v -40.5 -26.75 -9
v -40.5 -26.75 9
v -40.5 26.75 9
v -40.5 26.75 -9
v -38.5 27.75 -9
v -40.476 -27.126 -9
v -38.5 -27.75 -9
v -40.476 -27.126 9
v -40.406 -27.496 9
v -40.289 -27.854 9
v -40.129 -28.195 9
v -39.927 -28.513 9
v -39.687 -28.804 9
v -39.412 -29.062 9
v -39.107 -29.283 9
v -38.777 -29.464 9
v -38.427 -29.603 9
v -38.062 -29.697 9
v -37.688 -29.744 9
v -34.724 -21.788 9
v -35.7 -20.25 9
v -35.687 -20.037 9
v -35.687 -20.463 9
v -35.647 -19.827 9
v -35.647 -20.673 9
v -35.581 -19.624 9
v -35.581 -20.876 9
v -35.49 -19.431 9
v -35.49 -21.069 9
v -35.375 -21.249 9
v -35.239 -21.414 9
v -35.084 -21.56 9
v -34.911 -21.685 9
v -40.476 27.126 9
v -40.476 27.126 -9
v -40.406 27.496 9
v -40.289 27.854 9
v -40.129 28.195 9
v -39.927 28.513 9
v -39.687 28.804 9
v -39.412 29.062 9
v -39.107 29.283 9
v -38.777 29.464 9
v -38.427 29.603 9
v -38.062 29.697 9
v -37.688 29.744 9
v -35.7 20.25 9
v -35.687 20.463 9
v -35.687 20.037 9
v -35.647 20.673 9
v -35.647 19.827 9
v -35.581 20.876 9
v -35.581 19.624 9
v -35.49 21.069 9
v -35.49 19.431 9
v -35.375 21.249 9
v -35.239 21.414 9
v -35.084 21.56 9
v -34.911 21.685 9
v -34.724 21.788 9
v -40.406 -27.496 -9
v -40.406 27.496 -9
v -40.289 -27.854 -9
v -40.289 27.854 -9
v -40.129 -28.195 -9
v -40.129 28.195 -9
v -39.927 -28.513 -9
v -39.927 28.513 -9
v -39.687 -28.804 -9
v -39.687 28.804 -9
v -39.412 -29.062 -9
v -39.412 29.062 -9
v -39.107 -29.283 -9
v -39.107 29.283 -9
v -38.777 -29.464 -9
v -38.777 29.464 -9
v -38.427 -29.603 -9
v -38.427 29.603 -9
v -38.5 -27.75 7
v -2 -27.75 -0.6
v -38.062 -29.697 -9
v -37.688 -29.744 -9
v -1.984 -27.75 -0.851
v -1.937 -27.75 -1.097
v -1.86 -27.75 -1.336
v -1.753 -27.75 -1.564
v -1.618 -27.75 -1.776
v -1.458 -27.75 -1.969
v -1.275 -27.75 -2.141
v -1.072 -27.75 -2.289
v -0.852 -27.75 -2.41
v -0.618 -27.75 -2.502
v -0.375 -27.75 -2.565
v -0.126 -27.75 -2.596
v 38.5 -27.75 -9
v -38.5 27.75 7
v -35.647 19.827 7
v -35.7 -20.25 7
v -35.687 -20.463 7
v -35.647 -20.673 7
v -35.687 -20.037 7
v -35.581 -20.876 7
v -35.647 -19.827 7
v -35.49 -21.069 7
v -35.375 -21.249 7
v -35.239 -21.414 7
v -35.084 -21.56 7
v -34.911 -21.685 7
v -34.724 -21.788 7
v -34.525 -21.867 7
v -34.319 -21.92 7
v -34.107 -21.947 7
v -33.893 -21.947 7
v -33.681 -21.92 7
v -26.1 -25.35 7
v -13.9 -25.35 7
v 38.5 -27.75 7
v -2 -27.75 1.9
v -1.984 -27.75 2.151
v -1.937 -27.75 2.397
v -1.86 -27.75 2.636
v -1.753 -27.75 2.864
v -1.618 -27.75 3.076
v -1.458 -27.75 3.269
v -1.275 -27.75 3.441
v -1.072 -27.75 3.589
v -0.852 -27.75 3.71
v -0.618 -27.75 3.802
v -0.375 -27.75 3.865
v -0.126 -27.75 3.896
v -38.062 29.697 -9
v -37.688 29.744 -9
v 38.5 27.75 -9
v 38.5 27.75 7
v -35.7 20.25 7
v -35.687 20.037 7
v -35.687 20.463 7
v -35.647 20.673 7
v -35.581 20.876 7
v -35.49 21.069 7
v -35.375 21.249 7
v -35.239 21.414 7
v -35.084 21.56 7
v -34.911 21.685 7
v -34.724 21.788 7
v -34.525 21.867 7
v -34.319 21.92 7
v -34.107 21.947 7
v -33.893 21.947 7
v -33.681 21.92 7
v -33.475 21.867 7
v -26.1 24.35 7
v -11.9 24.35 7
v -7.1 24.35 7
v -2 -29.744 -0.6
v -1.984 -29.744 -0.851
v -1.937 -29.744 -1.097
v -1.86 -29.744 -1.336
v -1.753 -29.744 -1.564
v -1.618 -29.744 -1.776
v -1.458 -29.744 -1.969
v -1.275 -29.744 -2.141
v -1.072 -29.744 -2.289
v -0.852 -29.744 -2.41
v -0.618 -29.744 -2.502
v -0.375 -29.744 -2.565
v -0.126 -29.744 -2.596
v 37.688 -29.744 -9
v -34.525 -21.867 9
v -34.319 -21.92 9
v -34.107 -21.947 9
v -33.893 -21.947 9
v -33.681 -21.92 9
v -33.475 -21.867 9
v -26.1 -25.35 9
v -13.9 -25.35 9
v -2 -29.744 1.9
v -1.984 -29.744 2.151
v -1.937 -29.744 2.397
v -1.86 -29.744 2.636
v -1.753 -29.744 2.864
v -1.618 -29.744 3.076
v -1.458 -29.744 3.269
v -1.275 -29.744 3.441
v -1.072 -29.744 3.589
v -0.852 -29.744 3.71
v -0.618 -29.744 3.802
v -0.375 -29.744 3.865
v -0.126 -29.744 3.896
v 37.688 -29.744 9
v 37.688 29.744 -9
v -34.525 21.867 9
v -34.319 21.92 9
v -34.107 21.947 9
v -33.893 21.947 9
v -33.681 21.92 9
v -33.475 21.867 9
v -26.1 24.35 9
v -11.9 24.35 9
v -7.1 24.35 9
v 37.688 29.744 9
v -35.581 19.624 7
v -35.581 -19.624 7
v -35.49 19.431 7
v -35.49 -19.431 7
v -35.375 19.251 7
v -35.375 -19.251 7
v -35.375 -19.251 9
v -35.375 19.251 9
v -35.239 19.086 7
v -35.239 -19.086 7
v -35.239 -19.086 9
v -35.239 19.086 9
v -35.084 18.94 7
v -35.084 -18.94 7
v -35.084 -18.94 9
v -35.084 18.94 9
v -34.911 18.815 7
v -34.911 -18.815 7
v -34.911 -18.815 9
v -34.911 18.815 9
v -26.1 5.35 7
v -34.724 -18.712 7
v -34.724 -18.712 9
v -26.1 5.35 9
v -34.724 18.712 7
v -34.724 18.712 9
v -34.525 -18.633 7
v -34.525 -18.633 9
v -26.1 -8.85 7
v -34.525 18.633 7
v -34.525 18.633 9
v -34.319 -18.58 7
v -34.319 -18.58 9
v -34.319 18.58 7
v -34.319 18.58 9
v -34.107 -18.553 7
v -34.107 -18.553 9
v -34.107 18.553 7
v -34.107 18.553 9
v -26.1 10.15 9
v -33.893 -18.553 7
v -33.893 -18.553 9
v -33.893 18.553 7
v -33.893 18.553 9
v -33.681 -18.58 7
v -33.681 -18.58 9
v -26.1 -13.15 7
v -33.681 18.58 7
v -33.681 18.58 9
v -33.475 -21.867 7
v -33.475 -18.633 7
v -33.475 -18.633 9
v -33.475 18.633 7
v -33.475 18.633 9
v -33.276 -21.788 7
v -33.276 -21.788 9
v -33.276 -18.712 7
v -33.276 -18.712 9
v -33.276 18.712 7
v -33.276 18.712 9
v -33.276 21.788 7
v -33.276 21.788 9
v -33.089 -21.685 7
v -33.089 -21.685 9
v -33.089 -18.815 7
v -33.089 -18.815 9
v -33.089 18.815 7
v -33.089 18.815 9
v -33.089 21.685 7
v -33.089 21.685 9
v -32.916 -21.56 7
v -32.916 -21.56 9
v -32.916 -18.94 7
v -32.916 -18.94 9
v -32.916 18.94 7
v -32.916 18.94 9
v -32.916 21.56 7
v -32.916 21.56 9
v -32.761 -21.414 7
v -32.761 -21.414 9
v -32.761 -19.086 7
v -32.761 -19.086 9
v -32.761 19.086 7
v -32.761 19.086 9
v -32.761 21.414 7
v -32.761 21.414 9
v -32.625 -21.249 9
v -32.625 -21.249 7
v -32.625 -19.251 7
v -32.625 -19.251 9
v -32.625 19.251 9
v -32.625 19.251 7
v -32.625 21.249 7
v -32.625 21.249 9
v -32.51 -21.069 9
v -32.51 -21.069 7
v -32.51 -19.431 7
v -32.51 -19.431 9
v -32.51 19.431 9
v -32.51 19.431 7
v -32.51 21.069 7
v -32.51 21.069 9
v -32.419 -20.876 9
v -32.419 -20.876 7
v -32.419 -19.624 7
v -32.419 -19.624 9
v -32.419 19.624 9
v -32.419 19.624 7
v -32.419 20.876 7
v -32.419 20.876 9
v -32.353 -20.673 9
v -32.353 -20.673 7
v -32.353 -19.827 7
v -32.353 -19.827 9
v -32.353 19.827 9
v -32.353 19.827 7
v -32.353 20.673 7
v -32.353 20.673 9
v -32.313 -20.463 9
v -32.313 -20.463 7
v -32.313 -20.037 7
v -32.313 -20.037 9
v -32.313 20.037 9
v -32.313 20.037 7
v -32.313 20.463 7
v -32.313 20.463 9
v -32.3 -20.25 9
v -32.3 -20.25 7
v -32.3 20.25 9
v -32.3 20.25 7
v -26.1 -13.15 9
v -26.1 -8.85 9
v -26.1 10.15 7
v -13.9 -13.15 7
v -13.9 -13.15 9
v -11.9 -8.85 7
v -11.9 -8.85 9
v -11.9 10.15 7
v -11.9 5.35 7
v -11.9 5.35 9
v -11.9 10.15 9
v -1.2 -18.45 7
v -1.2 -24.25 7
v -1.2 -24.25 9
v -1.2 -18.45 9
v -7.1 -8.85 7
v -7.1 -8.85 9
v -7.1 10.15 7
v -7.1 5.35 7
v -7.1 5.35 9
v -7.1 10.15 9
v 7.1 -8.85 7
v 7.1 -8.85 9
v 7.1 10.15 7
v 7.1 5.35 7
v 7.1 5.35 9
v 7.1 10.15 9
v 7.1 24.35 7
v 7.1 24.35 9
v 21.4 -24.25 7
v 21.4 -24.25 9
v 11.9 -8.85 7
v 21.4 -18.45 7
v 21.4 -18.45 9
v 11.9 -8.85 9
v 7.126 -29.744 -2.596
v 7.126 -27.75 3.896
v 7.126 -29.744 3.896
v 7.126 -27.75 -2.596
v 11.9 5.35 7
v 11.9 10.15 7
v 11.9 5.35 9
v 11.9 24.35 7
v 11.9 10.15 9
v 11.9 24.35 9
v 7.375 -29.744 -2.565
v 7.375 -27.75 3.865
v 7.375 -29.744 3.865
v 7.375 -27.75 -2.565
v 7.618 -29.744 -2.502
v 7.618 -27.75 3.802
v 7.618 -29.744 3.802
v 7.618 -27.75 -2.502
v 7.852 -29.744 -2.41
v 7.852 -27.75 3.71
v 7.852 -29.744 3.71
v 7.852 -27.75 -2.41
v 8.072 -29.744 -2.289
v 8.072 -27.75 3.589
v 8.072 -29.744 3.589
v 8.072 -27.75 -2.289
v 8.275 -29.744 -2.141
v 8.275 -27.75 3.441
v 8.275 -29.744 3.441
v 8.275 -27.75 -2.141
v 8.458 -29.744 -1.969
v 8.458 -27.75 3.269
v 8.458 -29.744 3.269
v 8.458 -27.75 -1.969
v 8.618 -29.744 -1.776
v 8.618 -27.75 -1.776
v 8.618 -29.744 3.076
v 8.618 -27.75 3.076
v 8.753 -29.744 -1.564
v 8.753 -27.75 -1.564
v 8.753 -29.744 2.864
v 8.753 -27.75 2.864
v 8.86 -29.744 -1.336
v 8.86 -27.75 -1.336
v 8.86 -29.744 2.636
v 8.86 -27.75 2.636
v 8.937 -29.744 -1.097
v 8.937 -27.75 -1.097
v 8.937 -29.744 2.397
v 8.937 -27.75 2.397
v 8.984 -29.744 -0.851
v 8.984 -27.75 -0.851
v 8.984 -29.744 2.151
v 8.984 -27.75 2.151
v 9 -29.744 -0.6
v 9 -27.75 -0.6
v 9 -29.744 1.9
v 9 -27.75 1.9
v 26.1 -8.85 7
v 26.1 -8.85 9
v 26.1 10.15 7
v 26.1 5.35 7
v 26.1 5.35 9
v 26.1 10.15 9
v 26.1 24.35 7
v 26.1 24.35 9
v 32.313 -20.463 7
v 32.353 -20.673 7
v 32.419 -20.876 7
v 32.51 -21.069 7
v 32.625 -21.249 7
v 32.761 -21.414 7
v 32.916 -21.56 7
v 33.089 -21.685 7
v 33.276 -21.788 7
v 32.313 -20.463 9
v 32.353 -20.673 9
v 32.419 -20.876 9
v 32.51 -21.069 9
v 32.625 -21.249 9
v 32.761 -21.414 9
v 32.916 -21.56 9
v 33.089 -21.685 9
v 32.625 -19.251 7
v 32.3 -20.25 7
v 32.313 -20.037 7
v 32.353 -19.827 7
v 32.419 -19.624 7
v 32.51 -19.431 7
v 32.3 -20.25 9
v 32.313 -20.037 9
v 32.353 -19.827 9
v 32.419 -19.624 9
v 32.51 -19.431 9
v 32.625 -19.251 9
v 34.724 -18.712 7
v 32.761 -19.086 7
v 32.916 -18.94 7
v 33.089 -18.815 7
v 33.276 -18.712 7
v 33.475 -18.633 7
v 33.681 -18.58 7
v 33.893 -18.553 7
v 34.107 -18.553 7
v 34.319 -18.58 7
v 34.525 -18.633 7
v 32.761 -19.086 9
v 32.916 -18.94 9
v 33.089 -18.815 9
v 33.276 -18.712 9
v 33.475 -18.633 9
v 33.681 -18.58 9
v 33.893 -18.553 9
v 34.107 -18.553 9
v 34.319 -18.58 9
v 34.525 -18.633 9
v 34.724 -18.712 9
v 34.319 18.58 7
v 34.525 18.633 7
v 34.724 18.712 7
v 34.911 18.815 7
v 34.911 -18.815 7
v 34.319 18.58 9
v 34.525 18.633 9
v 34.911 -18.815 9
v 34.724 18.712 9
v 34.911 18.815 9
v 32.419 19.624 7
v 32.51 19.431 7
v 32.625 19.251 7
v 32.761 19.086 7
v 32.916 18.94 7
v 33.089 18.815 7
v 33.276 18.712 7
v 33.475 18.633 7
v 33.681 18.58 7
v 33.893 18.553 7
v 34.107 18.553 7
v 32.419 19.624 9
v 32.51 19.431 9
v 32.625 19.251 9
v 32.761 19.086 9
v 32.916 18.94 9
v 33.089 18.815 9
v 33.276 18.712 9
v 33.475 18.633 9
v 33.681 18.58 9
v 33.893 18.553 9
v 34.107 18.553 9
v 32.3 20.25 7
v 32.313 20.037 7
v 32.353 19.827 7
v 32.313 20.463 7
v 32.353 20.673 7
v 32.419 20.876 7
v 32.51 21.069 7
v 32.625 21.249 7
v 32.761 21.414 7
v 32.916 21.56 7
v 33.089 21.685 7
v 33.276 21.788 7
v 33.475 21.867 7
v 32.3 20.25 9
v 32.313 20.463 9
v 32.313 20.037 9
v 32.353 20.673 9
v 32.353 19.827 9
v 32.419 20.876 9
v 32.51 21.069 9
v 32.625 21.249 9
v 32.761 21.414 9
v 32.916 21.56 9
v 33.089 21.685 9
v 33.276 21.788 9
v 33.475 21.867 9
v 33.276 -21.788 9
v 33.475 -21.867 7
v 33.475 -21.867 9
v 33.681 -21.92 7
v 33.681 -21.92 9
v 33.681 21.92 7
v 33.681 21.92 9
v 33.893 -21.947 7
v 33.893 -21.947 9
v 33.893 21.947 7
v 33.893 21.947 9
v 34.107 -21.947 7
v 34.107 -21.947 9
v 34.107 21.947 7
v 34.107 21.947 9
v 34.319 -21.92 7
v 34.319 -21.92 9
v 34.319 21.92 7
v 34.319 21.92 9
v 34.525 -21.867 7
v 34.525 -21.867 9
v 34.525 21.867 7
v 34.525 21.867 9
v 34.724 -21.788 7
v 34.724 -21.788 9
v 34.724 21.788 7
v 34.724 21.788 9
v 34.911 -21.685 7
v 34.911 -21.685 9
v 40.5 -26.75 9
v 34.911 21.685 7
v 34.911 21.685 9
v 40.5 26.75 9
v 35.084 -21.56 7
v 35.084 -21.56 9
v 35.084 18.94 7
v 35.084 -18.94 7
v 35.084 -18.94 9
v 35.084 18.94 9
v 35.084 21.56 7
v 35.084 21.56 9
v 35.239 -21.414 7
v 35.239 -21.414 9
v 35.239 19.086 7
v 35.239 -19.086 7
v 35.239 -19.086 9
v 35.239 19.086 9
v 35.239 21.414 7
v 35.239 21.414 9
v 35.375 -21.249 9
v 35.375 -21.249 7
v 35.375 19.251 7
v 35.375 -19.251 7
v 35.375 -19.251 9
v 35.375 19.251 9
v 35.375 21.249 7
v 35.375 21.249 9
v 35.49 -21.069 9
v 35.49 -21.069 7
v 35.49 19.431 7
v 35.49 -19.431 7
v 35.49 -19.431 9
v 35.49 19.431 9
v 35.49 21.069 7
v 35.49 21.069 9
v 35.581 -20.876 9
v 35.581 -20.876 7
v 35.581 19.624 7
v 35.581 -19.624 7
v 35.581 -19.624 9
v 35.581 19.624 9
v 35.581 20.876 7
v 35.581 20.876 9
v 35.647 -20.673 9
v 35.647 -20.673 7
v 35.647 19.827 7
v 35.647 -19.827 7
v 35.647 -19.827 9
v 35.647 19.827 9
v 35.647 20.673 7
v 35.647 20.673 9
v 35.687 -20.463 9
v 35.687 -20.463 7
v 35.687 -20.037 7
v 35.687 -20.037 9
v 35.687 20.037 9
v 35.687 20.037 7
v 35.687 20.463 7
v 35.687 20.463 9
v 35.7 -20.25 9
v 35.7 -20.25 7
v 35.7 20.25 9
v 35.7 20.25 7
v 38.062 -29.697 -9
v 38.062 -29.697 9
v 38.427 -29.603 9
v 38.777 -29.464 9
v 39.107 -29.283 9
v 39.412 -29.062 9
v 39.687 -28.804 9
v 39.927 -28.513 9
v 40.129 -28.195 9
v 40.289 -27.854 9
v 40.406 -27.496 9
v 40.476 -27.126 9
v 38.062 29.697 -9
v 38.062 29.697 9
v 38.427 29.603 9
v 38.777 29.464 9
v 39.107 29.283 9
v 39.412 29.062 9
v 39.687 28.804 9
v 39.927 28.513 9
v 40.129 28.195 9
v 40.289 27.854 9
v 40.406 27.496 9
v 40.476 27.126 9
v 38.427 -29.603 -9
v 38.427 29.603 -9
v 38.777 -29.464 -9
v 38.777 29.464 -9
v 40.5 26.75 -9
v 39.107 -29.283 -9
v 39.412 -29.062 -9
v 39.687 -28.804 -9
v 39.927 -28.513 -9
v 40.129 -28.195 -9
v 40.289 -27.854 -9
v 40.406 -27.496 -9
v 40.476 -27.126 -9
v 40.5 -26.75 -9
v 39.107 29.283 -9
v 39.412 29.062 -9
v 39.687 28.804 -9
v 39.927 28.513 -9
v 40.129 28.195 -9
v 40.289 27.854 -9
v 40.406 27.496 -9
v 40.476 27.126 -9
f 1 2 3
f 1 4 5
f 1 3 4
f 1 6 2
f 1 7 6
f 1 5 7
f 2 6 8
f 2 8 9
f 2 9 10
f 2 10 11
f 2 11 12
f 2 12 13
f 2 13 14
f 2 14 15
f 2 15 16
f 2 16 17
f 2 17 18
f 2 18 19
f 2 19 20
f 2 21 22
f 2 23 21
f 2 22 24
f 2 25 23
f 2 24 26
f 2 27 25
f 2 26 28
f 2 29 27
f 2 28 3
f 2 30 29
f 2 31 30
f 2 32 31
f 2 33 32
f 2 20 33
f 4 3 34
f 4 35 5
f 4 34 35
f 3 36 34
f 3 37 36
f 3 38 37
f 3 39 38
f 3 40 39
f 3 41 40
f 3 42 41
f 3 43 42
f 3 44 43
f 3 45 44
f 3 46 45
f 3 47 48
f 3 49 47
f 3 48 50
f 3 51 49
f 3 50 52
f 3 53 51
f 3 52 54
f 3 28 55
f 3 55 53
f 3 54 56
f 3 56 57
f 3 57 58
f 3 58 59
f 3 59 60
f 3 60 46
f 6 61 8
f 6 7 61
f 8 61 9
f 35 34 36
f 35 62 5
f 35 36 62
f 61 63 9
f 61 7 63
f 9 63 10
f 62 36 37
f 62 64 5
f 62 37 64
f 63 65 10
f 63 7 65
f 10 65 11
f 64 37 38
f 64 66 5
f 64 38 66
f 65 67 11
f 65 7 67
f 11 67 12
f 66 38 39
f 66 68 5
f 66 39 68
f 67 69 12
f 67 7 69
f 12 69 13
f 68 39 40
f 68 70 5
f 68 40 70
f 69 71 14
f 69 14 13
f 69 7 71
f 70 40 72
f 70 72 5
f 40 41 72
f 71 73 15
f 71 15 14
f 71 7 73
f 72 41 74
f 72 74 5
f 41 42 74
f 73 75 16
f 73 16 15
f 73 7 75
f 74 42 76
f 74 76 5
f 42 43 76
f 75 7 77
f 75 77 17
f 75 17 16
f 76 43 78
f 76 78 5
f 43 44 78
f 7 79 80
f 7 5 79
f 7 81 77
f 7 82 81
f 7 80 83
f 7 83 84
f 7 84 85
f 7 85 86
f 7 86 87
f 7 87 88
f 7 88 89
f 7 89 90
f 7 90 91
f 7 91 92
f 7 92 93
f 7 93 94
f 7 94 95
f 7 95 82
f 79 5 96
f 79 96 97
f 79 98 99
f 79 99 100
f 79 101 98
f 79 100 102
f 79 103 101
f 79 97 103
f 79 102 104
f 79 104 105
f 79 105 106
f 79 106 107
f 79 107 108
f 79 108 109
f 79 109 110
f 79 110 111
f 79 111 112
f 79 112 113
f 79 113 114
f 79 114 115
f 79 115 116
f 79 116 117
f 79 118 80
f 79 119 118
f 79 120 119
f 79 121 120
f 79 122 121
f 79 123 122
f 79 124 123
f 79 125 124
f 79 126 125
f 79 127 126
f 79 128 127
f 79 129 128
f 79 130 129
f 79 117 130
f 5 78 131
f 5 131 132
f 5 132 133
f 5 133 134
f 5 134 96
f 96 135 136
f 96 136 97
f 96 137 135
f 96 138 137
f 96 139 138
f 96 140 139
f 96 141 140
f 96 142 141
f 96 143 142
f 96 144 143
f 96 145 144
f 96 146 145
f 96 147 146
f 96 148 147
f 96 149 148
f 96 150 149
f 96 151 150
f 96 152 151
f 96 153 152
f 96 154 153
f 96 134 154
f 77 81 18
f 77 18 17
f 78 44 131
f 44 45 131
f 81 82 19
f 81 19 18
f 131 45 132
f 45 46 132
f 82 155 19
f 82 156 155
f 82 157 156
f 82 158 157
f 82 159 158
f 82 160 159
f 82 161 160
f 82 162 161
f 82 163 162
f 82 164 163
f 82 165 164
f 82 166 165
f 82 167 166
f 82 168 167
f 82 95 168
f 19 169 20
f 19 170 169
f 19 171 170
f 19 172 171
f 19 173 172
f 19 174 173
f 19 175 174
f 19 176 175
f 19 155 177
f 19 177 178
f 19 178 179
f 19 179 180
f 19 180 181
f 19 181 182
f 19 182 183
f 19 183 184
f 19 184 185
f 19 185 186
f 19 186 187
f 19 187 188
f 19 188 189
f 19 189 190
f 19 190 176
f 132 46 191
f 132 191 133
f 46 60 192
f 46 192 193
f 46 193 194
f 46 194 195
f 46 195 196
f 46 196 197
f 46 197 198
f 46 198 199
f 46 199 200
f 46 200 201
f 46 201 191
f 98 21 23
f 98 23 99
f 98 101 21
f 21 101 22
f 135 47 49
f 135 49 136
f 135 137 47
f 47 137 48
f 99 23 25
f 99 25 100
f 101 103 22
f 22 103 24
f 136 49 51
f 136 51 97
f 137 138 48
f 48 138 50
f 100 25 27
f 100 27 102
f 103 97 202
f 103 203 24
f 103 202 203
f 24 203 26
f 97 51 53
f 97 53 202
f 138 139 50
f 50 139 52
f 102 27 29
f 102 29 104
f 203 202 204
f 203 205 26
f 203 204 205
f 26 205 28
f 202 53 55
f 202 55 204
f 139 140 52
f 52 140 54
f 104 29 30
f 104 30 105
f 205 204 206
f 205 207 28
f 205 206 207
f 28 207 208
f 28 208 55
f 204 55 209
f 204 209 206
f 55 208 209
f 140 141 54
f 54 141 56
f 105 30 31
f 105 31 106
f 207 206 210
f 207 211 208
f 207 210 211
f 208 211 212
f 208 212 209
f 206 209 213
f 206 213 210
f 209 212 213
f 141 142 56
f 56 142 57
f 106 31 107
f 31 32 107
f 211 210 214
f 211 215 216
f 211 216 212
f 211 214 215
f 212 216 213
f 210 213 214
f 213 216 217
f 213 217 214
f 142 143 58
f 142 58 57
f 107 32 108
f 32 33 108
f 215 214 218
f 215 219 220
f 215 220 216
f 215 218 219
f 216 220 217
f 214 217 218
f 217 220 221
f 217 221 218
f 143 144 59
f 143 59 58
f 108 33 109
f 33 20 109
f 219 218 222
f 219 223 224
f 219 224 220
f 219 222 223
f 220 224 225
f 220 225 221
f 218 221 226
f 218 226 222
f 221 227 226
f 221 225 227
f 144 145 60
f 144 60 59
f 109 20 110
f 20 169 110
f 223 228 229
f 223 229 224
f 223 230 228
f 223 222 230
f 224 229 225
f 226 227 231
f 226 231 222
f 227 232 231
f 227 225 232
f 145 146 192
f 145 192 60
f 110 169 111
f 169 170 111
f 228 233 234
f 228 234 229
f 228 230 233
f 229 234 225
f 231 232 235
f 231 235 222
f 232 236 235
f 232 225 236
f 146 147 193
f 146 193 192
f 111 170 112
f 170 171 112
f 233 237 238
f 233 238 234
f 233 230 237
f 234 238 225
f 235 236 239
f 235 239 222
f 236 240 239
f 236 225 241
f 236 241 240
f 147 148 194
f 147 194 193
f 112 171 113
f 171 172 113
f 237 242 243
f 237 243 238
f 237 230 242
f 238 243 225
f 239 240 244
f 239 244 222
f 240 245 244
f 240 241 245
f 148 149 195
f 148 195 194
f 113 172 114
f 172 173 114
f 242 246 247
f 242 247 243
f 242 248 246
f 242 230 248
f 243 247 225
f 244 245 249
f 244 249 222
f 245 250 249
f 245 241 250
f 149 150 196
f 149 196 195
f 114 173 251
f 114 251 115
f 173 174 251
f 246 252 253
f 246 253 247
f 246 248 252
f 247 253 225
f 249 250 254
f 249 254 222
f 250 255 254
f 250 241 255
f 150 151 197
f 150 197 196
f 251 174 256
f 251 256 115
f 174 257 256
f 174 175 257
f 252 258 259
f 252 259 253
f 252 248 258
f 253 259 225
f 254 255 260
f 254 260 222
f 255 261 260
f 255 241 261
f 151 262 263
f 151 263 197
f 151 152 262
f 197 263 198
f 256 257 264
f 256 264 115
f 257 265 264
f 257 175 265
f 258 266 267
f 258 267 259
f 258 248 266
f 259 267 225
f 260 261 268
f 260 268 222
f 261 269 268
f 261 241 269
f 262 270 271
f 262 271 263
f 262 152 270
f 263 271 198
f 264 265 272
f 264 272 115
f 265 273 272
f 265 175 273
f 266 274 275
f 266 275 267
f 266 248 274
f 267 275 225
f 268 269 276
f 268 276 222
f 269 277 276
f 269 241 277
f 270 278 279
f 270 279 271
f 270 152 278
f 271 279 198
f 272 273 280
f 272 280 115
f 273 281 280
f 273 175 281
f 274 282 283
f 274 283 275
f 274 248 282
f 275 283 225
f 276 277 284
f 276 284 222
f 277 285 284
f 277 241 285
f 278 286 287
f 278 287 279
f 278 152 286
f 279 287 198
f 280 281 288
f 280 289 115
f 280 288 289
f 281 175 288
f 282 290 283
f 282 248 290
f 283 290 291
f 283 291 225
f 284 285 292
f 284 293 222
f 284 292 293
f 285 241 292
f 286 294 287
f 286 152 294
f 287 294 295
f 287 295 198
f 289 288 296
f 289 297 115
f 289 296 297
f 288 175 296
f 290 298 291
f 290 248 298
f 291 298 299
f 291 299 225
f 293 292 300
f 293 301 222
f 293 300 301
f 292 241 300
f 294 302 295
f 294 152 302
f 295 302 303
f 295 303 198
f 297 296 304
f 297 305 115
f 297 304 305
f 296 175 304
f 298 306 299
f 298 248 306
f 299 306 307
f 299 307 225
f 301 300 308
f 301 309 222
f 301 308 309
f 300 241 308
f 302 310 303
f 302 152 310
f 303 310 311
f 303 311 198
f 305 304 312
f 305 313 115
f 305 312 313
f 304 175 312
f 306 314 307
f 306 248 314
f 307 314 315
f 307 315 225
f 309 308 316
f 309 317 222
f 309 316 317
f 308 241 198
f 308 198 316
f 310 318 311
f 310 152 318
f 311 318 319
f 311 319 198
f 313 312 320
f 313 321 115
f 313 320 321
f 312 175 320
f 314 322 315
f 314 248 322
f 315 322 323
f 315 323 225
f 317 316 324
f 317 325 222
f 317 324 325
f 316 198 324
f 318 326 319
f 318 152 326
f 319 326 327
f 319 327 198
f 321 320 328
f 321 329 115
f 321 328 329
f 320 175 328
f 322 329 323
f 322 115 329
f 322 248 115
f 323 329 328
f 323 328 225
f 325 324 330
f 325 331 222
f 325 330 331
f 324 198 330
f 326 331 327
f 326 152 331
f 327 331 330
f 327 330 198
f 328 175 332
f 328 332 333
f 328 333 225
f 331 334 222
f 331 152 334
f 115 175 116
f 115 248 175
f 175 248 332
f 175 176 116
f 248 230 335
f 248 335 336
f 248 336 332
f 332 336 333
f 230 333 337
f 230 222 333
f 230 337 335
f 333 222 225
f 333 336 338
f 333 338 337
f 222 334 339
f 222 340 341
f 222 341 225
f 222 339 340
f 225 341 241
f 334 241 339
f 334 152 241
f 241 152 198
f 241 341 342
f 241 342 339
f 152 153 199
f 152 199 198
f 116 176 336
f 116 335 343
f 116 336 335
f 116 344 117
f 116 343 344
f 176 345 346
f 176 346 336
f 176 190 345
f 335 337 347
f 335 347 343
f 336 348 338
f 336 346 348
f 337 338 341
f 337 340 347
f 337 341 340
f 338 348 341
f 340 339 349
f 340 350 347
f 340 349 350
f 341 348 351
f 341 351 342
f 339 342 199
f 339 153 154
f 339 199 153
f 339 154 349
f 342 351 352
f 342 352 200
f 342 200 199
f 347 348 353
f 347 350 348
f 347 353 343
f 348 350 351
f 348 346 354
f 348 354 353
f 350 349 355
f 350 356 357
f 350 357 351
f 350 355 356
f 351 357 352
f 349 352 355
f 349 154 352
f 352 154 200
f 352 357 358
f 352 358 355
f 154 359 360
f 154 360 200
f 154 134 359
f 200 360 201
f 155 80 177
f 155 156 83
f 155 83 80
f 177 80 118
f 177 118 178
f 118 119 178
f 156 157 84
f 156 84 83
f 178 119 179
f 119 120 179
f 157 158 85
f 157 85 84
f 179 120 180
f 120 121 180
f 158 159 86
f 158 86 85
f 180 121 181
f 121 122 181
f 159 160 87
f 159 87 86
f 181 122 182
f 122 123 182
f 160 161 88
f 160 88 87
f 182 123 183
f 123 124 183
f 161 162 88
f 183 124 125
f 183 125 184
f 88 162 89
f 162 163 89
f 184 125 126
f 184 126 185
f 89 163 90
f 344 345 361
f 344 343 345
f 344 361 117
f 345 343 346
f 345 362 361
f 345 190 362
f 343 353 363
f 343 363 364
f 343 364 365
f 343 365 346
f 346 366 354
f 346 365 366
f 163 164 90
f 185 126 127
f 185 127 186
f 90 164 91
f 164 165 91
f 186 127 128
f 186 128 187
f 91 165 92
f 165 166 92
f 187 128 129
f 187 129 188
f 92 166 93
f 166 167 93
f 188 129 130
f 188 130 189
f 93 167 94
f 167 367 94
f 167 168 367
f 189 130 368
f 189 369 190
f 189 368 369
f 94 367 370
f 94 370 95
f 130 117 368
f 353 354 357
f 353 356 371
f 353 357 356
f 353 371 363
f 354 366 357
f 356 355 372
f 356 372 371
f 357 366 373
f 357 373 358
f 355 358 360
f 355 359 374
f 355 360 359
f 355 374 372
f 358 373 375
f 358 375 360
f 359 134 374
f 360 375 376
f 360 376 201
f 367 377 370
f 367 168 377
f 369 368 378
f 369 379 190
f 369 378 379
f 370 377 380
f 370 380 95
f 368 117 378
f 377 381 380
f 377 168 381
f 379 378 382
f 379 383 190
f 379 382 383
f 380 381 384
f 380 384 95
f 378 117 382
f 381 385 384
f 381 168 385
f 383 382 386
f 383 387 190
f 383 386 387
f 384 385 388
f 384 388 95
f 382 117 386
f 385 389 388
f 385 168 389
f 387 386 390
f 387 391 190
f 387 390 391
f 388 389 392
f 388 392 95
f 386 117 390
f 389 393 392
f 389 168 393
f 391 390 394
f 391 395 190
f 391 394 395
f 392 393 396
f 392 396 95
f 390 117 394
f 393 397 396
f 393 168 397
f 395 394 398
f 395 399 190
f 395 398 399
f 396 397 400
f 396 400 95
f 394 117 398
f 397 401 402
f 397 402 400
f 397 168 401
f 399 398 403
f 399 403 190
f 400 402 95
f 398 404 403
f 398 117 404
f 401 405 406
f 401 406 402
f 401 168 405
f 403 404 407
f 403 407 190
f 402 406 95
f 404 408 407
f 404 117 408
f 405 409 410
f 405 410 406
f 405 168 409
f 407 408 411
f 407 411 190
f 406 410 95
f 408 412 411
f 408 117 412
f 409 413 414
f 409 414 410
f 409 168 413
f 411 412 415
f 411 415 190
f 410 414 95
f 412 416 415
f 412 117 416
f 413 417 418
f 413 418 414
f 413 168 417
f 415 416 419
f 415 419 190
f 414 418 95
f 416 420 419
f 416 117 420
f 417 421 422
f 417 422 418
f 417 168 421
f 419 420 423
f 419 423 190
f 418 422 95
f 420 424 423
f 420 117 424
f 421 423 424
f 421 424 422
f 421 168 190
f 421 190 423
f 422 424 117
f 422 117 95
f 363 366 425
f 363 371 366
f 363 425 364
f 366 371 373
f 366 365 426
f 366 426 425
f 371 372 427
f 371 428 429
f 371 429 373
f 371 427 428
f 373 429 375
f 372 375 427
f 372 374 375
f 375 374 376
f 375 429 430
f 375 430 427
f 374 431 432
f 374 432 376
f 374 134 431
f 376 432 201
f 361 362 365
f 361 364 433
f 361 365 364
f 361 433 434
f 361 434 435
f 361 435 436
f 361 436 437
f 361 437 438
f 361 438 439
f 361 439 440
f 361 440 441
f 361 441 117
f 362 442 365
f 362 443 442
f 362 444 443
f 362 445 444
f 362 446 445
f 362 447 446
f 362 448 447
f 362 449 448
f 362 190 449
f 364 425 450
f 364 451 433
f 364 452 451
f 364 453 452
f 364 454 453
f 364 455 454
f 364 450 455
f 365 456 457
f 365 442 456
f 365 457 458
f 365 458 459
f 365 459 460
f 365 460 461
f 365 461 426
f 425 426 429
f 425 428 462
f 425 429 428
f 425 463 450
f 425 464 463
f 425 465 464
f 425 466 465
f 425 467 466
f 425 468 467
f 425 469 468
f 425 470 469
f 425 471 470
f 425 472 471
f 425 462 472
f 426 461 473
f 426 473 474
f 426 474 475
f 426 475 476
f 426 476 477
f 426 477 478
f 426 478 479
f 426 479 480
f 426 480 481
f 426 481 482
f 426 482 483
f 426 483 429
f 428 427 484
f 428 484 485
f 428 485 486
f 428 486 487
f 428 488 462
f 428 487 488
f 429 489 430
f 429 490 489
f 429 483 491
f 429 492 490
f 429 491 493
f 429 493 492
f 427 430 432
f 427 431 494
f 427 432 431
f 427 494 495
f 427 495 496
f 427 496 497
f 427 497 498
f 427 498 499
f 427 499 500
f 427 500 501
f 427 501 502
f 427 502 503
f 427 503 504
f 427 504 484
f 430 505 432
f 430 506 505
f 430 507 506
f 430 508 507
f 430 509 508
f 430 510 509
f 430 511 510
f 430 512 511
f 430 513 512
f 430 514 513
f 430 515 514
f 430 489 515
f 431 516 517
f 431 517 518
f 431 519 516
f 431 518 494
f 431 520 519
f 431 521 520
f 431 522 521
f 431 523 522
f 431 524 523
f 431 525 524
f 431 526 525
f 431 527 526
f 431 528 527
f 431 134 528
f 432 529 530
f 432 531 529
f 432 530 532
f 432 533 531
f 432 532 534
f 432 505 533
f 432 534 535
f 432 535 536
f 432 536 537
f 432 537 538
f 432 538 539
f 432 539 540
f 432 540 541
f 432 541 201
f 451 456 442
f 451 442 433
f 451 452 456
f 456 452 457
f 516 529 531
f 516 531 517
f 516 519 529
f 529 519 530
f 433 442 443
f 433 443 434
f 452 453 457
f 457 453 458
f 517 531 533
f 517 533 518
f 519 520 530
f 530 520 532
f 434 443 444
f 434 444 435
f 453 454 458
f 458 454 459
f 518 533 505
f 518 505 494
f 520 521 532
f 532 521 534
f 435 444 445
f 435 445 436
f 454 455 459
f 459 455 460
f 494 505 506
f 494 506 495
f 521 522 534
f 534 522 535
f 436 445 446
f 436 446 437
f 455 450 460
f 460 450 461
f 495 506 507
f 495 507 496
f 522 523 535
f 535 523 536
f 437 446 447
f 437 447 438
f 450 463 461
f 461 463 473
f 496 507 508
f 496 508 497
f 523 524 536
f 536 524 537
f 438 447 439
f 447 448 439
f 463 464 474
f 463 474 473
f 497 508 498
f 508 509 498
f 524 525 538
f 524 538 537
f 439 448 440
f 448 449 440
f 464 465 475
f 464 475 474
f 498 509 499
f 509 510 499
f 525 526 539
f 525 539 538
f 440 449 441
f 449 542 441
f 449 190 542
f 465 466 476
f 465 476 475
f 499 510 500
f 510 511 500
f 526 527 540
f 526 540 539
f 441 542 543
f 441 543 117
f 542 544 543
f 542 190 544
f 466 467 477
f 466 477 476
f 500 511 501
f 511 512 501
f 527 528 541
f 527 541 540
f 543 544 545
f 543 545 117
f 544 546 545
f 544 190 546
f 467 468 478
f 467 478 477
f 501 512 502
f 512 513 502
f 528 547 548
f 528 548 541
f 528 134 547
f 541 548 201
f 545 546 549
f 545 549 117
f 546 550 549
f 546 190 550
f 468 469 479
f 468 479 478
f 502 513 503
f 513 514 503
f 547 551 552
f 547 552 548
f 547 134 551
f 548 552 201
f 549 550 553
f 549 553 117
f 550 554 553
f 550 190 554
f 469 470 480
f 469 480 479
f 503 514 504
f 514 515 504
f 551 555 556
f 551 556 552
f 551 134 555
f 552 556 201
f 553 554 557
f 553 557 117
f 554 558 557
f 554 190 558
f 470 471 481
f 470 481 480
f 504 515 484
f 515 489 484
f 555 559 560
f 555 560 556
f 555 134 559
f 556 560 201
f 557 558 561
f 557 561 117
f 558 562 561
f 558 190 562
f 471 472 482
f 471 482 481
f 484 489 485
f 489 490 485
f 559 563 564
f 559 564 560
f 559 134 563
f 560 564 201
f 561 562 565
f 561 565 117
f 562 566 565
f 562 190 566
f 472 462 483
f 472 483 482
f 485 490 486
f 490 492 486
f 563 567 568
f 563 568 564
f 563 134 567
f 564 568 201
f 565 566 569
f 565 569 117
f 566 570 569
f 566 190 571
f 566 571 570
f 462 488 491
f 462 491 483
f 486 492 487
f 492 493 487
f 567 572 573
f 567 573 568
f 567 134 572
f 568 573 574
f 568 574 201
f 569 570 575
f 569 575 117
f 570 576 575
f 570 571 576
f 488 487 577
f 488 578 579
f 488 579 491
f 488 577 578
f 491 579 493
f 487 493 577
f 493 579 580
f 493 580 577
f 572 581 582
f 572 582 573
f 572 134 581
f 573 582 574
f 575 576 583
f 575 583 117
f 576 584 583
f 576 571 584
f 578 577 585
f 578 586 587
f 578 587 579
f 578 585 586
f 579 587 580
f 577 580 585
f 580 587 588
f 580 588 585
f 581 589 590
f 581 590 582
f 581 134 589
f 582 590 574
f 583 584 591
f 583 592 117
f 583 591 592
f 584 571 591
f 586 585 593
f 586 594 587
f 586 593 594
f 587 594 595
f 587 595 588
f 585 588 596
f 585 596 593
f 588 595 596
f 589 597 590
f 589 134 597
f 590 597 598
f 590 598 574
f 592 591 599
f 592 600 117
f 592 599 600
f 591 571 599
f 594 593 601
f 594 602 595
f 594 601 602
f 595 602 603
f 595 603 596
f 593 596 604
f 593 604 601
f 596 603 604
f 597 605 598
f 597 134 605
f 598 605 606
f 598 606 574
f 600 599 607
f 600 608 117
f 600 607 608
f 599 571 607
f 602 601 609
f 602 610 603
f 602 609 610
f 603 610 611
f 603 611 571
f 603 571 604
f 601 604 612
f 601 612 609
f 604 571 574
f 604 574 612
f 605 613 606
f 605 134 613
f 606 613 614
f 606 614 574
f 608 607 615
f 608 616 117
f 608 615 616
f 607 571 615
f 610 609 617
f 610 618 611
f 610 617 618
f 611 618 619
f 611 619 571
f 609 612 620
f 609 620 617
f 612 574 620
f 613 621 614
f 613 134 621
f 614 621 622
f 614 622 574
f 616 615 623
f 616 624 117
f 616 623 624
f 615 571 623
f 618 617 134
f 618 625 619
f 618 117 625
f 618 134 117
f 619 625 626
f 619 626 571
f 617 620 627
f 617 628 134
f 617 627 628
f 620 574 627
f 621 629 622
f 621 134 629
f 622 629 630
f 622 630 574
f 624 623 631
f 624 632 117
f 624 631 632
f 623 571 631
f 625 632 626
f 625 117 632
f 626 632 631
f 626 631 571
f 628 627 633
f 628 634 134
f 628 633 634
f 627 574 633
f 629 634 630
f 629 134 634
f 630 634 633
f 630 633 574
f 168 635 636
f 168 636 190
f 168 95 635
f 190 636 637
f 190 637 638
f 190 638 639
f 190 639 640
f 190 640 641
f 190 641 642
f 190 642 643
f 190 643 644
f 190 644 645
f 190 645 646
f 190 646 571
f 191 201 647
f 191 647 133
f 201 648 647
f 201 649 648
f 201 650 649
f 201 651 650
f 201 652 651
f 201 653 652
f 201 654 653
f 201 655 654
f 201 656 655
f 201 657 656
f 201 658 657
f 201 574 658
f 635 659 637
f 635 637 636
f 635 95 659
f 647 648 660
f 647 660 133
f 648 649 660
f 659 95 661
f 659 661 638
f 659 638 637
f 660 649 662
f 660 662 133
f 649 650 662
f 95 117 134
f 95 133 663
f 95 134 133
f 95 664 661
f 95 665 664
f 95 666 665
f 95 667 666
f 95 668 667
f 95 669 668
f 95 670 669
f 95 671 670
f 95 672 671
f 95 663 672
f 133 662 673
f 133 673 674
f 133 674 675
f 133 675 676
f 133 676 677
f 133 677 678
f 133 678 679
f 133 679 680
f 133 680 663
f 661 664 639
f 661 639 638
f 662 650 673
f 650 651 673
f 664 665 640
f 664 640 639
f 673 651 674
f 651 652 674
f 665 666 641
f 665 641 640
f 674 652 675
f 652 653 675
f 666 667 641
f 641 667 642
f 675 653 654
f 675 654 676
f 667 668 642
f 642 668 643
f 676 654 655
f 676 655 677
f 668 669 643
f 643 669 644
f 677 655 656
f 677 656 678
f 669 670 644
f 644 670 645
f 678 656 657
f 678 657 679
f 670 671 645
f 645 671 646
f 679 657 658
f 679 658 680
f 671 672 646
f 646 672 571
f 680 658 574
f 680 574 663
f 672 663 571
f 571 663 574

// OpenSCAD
use <smooth_prim.scad>

$fn=50;

board_extra_size = 1;
board_height = 14;
board_width = board_extra_size*2+53.5;
board_length = board_extra_size*2+75;
case_extra_width = 4; // the side width will be the half of this value
keycap_length = 19;
switches_box_length = 14.2;
encoder_box_length = 12.2;
display_box = [22.6,5.8,20];
usb_c = [11,6.5,case_extra_width];


difference() {
    translate([-(board_length+case_extra_width)/2,-(board_width+case_extra_width)/2,-((board_height+case_extra_width)/2)]) {
    SmoothXYCube([board_length+case_extra_width,board_width+case_extra_width,board_height+case_extra_width],3);
    };
    translate([0,0,-case_extra_width/2]){
    cube([board_length,board_width,board_height+case_extra_width],center = true);}
    color("green"){
    for (x = [-1:2:1]){
        for (y = [-1:2:1]) {
            translate([((board_length/2)-3.5-board_extra_size)*x,((board_width/2)-6.5-board_extra_size)*y,0]){
                cylinder(h=board_height+case_extra_width*2+1,d=3.4,center=true);
    }}}
    translate([0,(board_width/2 - board_extra_size)-keycap_length,0]){
    union(){
    for (x = [-1:1]){
        for (y = [-1:2:1]) {
            translate([keycap_length*x,(keycap_length/2)*y,0]){
                cube([switches_box_length,switches_box_length,board_height+case_extra_width*2+1],center=true);
    }}}}}
    translate([-(board_length/2 - 17.5 - board_extra_size),-((board_width/2)-7.5 - board_extra_size),0]){
    cube([encoder_box_length,encoder_box_length,board_height+case_extra_width*2+1],center=true);
    }
    translate([(board_length/2 - 16.1 - board_extra_size - display_box[0]/2),-(board_width/2-display_box[1]/2-2.5-board_extra_size),0]){
    cube(display_box,center=true);
    }
    }
    color("red"){
    translate([board_length/2-29.5-board_extra_size,-board_width/2,board_height/2+(case_extra_width/2)-(6.6+3.5)]){
    rotate([90,0,180]){
    translate([-1,-1.5,-case_extra_width/2]){
    SmoothXYCube(usb_c,2){}}}}}
}
